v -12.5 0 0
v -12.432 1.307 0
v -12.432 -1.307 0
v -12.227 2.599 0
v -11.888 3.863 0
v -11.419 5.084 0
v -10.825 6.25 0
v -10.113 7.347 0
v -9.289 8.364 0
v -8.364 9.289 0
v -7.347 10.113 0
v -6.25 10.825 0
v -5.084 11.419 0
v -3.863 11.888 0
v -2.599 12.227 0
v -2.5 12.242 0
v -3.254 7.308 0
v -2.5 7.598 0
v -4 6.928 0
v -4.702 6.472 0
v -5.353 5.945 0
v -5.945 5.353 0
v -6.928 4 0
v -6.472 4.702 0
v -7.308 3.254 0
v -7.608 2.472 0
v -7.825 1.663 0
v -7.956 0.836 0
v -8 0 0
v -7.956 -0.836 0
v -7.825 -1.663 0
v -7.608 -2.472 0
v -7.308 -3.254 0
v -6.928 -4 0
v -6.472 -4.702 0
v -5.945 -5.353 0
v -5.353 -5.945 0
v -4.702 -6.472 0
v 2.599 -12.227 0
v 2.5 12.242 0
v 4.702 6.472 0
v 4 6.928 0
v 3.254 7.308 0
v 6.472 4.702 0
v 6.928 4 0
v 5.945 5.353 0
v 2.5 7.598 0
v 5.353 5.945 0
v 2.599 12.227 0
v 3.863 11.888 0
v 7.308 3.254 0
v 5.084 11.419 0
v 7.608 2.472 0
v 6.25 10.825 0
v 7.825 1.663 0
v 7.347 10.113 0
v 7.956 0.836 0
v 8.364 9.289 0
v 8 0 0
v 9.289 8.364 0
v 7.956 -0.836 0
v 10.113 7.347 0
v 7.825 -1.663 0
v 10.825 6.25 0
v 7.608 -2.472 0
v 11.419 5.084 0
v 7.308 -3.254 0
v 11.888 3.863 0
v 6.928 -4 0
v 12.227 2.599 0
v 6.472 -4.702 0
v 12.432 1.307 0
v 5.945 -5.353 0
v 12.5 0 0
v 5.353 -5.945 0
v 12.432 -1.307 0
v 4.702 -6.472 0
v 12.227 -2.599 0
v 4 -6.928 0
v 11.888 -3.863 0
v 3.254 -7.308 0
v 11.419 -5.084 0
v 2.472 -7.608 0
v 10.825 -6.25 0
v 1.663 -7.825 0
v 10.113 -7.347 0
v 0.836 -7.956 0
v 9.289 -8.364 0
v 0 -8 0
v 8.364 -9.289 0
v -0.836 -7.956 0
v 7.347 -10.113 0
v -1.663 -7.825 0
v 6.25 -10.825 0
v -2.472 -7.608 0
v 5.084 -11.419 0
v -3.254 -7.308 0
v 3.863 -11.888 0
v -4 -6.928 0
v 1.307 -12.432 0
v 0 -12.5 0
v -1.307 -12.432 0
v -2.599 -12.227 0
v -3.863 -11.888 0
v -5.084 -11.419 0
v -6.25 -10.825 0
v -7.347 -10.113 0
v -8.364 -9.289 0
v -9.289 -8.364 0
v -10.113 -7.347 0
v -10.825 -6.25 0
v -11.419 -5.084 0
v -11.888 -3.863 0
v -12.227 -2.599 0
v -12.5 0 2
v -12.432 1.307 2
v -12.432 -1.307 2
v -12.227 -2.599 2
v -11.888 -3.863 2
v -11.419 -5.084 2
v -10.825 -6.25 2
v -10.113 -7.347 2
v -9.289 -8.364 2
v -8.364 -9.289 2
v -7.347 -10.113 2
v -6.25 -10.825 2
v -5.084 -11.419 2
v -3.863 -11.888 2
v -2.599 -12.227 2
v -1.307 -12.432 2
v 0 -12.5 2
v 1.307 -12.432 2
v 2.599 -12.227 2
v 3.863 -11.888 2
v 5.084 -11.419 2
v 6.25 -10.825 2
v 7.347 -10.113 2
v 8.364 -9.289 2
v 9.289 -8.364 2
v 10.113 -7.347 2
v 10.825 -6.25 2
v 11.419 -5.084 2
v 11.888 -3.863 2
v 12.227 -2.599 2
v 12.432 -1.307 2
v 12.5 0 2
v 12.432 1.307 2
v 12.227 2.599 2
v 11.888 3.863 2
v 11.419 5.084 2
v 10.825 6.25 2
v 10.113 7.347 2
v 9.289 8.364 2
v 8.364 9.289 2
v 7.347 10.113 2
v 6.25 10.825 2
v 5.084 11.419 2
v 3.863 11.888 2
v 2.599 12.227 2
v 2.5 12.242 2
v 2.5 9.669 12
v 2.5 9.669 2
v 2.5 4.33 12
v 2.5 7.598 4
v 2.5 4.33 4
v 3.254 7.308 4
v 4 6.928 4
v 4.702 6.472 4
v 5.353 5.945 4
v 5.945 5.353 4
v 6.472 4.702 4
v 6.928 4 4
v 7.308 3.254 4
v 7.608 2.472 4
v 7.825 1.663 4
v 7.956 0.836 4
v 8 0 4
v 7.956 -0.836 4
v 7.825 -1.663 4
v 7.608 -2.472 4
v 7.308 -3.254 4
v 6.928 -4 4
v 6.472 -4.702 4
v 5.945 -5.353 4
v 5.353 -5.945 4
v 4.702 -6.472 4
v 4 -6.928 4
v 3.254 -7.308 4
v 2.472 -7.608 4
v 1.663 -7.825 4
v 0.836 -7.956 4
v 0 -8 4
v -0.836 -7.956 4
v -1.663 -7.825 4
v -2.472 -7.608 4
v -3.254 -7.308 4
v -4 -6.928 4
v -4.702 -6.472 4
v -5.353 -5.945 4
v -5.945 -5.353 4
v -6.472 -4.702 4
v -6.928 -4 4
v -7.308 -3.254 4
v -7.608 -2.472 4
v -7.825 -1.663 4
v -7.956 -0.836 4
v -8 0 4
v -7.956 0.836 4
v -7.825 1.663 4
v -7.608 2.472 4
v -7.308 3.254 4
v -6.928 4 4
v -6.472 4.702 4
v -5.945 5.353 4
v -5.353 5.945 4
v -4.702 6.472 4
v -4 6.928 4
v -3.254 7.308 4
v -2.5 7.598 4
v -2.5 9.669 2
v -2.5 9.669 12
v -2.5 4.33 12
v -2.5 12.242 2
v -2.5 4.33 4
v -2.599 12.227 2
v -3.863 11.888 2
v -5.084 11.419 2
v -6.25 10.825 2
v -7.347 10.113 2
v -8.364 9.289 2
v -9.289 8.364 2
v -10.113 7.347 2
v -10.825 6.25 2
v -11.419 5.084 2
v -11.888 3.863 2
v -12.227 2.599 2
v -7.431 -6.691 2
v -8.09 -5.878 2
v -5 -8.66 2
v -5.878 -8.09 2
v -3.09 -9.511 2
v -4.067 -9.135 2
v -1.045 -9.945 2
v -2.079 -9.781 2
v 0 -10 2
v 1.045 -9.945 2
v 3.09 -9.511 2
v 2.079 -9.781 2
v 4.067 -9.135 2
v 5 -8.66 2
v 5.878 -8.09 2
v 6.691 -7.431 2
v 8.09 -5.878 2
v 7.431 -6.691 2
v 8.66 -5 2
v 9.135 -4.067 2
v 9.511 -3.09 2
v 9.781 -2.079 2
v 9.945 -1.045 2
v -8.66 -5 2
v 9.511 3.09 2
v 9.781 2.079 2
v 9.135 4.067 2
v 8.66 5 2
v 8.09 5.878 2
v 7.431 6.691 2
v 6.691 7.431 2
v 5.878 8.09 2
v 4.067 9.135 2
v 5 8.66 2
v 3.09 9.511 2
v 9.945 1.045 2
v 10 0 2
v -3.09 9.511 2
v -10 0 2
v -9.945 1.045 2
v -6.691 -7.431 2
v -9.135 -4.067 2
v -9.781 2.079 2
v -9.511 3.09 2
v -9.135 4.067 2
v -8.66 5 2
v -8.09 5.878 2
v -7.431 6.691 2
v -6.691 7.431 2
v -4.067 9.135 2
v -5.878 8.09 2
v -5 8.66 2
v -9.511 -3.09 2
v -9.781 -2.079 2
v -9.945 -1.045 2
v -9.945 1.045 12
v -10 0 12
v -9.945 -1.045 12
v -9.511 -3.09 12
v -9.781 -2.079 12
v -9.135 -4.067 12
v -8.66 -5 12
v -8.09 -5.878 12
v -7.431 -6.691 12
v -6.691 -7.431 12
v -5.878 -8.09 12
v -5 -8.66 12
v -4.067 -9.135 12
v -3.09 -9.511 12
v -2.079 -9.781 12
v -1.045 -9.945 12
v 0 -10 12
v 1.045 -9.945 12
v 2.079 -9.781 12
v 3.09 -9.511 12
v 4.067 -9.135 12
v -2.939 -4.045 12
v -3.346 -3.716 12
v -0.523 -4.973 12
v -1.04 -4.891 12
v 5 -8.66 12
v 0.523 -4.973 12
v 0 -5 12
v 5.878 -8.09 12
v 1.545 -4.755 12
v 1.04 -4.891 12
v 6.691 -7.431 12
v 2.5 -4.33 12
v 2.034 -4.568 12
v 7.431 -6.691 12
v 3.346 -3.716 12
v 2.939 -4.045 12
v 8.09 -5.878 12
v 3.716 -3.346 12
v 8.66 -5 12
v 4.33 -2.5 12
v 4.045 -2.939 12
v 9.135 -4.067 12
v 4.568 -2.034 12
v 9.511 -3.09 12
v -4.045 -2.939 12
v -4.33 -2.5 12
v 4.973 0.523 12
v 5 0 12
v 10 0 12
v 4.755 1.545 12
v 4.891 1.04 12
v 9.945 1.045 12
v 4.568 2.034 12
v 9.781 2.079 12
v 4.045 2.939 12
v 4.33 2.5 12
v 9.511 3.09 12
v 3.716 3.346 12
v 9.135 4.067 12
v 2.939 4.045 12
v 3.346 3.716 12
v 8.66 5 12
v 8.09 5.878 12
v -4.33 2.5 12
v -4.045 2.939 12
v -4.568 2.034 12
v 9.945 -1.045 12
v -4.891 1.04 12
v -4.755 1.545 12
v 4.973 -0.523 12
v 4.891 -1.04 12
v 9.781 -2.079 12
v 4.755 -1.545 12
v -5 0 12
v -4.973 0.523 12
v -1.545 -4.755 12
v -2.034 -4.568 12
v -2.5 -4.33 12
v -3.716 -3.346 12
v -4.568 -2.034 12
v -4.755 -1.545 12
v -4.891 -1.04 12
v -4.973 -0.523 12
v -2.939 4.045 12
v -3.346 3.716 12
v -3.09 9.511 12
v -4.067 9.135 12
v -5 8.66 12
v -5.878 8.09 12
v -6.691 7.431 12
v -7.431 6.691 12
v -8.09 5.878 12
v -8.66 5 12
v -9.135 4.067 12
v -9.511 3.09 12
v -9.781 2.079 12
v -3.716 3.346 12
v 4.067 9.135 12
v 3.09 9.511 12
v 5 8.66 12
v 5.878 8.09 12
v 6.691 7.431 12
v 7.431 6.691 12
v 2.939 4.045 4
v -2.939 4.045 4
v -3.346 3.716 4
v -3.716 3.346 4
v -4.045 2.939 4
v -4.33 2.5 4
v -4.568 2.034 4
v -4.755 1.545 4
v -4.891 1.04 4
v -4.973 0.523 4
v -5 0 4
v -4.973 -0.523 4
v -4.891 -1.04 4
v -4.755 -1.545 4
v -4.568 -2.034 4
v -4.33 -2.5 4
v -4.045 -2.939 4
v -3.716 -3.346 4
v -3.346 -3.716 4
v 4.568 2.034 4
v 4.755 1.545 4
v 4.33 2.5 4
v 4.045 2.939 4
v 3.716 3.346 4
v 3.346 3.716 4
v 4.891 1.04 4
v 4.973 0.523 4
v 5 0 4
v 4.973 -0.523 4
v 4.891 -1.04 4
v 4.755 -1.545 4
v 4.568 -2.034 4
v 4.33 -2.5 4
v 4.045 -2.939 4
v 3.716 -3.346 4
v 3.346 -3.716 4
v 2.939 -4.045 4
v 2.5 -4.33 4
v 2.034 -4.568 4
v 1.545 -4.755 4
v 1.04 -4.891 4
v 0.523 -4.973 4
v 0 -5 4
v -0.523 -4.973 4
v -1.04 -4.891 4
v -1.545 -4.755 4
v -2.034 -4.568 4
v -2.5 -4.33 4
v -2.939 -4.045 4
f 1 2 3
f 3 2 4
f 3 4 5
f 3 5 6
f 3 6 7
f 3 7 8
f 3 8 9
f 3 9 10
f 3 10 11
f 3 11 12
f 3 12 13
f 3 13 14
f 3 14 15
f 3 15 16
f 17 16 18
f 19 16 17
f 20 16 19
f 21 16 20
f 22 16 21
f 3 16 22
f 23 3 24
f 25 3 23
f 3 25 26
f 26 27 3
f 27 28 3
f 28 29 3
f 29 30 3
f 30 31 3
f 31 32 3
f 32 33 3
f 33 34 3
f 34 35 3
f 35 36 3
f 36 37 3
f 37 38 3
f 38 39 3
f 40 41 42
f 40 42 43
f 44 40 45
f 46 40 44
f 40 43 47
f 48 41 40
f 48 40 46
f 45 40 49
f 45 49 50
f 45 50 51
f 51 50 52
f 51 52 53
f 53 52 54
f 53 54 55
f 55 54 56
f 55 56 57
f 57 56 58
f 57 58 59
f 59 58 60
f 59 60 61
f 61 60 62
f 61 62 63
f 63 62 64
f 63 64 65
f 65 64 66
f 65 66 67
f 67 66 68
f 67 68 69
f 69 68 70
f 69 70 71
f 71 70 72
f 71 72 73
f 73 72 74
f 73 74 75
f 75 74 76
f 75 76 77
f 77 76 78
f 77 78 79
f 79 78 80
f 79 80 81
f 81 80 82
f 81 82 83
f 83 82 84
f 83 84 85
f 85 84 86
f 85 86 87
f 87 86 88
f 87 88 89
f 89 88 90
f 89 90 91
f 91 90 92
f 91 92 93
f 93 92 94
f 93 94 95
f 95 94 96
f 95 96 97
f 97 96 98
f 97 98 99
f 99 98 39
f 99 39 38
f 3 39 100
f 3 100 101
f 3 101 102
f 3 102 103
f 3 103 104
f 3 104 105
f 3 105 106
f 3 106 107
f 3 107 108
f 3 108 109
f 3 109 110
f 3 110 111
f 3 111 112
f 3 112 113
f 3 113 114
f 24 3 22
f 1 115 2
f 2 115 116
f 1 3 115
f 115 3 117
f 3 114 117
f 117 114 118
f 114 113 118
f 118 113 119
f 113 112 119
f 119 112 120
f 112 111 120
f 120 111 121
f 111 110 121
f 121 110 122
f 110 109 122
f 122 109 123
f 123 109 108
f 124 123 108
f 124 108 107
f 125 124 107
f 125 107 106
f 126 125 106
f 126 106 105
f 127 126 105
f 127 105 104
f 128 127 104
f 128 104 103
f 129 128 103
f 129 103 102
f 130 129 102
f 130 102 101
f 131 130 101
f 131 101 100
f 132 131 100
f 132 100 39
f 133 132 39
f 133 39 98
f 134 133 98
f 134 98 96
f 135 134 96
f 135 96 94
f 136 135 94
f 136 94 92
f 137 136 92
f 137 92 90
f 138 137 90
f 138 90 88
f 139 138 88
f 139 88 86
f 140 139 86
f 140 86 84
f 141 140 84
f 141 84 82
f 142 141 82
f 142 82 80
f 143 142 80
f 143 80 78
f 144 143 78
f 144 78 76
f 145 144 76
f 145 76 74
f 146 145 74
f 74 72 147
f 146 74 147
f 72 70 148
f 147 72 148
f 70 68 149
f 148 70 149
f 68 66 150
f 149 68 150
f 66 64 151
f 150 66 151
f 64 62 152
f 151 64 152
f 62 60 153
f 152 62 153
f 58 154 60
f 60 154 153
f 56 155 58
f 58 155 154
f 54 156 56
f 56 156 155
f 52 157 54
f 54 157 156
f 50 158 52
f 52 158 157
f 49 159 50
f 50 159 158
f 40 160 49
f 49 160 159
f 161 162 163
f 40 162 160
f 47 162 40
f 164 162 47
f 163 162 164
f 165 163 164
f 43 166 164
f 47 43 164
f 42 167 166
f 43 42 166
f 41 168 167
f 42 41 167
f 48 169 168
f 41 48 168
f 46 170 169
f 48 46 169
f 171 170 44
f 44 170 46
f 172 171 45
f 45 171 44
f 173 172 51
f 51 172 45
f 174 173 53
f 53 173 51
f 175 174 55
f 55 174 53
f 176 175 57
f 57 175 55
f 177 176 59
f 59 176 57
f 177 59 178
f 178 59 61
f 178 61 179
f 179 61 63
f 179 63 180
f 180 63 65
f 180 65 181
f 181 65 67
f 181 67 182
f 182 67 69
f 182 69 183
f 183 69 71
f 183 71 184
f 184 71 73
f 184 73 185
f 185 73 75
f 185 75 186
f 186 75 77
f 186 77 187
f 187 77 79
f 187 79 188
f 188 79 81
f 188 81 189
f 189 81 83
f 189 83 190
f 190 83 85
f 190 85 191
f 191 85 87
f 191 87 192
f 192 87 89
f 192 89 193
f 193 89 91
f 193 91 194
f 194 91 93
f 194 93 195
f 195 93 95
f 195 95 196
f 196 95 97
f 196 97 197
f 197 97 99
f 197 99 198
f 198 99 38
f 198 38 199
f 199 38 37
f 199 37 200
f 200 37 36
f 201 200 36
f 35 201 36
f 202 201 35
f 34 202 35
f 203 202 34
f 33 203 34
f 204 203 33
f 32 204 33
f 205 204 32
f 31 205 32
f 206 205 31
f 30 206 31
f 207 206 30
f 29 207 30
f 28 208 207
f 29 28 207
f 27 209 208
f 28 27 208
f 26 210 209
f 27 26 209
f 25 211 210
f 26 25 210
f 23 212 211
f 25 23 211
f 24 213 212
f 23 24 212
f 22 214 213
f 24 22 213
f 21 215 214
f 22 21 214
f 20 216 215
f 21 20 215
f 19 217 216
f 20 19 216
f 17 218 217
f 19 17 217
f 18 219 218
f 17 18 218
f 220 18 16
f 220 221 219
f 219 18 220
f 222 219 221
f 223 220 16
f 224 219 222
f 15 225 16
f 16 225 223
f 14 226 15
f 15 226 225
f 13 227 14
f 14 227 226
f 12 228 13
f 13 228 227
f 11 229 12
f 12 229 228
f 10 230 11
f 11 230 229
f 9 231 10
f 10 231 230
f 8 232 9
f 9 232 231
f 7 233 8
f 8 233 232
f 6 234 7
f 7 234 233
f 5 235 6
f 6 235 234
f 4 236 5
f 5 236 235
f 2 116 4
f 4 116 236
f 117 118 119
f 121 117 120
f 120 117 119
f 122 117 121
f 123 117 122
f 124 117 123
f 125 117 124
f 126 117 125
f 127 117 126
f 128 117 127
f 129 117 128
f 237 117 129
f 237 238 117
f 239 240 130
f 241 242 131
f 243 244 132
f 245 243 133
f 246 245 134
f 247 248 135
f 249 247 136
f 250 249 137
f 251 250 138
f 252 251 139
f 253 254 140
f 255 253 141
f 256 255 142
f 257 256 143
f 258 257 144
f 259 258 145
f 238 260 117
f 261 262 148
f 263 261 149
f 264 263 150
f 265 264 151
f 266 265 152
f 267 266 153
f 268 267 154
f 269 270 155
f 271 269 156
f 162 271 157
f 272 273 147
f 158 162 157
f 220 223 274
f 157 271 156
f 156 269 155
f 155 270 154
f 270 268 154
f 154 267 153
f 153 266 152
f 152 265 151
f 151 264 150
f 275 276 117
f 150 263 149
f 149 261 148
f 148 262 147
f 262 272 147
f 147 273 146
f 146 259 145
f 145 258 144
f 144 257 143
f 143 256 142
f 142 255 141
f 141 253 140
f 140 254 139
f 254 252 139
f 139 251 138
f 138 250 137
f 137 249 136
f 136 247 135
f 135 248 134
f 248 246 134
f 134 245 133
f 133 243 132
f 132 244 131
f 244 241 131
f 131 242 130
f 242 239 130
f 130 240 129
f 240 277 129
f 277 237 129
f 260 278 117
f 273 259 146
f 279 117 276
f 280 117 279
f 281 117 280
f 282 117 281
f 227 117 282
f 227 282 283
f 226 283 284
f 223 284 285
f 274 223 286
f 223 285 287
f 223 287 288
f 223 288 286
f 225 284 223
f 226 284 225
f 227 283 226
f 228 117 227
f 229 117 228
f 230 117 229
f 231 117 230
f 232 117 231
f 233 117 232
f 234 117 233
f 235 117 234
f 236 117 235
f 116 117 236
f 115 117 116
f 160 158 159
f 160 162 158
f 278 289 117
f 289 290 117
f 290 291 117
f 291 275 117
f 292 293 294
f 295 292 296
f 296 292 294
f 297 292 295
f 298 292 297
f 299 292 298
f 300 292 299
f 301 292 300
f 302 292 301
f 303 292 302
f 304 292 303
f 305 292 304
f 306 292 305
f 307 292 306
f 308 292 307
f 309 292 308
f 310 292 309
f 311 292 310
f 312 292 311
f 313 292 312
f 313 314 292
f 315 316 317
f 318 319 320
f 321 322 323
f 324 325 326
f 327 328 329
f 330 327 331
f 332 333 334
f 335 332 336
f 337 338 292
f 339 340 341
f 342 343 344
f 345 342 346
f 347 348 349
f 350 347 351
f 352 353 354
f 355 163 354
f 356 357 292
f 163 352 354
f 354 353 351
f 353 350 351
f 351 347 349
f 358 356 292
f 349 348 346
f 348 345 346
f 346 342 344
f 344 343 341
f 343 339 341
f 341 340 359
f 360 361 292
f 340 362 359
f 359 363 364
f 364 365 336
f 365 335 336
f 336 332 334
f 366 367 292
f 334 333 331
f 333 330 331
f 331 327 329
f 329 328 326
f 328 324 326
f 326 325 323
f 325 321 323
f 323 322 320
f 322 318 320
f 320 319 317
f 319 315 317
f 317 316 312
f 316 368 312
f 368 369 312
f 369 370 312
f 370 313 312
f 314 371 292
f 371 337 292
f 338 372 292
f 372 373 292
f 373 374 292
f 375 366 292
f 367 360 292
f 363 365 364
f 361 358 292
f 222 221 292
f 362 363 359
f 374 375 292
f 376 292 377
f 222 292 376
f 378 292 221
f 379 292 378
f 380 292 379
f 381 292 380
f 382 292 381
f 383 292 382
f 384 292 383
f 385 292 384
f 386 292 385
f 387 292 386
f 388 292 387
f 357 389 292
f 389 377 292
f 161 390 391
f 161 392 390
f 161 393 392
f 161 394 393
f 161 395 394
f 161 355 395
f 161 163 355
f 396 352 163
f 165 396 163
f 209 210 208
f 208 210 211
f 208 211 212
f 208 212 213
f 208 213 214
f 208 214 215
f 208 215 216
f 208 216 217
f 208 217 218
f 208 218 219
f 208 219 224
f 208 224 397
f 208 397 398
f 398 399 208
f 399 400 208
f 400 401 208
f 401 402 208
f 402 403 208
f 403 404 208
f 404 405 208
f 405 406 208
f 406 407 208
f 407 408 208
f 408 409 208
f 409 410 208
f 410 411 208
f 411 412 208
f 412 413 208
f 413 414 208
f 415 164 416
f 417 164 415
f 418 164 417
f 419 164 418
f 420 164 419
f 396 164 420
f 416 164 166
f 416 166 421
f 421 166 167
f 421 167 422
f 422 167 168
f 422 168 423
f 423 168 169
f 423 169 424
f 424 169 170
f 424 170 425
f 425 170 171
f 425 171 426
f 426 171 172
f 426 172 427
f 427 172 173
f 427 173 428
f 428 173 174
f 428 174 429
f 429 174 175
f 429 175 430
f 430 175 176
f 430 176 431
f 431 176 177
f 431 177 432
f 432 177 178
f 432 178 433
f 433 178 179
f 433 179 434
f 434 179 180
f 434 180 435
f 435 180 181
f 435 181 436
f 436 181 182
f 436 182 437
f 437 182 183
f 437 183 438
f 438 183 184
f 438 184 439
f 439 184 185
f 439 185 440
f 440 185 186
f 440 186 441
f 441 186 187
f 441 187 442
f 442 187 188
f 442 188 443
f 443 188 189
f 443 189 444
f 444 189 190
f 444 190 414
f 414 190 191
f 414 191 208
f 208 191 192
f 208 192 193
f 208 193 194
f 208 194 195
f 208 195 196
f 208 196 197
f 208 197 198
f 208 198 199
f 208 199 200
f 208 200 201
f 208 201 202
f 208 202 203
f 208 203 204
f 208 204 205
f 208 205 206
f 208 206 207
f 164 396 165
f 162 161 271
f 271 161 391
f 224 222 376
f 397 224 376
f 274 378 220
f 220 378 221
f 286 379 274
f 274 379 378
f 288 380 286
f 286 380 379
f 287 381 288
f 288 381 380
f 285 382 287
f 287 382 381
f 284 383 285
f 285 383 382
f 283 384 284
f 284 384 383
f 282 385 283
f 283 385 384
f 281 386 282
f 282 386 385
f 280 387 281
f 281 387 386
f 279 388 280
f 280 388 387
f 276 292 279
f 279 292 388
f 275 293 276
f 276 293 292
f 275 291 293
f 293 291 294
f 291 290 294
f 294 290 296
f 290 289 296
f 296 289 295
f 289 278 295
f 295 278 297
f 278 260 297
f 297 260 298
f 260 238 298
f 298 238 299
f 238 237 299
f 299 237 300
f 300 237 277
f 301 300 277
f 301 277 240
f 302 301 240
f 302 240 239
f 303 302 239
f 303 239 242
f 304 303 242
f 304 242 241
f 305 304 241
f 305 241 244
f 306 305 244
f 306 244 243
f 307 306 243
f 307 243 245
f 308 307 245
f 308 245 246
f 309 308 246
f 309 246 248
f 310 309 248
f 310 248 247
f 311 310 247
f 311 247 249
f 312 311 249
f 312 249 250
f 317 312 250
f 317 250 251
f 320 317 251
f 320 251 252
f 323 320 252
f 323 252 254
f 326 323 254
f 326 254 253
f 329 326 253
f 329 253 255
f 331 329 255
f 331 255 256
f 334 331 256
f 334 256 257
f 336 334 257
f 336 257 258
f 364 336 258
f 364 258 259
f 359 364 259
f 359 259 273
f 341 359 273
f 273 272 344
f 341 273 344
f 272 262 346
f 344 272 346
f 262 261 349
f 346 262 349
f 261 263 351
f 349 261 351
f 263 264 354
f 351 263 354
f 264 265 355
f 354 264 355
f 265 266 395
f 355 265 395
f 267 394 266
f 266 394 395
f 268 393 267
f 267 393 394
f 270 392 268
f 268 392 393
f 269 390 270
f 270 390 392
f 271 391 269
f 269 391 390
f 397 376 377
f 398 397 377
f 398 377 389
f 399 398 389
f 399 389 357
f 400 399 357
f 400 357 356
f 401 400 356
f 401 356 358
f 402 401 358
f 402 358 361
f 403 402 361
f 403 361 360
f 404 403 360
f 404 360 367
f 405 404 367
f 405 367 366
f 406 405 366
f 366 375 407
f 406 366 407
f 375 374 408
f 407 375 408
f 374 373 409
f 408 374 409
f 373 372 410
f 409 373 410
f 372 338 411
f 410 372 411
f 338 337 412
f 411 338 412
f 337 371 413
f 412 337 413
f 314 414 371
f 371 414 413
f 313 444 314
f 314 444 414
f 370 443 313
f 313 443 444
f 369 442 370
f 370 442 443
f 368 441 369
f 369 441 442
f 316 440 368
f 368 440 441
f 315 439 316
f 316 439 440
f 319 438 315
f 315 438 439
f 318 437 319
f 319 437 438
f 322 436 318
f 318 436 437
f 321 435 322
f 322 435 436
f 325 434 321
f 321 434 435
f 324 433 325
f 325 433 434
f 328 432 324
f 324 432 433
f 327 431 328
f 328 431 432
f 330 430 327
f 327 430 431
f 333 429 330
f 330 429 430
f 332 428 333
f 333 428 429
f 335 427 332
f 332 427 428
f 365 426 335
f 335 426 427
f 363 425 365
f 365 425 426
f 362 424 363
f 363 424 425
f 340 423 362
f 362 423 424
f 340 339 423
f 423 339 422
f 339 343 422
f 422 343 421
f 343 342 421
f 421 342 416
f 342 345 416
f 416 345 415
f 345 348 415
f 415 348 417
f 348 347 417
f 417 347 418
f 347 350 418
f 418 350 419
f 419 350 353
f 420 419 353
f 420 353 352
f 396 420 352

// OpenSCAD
// file: flange_with_recess.scad
$fn = 60;

module flange(r_flange, t_flange, r_shaft, d_shaft, r_hole = 0, r_recess = 0, d_recess = 0, fn_recess = $fn) {
  difference() {

    // outer flange/cylinder
    cylinder(h = d_shaft+t_flange, r = r_flange);

    // bolt hole
    translate([0, 0, -t_flange]) cylinder(h = 2*d_shaft+t_flange, r = r_hole);

    // donut cutter
    translate([0, 0, t_flange]) {
      difference() {
        cylinder(h = d_shaft+t_flange, r = 2*r_flange);
        cylinder(h = 2*d_shaft+t_flange, r = r_shaft);
      }
    }

    // recess
    translate([0, 0, -d_recess]) cylinder(h = 2*d_recess, r = r_recess, $fn = fn_recess);
  }
}
// main file
$fn = 60;

include <flange_with_recess.scad>

r_rod = 10/2;
r_shaft = 20/2;
d_shaft = 10;
r_flange = 25/2;
t_flange = 2;

difference() {
  // r_flange, t_flange, r_shaft, d_shaft, r_hole = 0, r_recess = 0, d_recess = 0, fn_recess = $fn
  flange(r_flange, t_flange, r_shaft, d_shaft, r_rod, r_rod+3, 4);

  translate([0, r_flange/2, d_shaft/2]) {
    cube([r_rod, r_flange, 2*d_shaft+t_flange], center = true);
  }
}
